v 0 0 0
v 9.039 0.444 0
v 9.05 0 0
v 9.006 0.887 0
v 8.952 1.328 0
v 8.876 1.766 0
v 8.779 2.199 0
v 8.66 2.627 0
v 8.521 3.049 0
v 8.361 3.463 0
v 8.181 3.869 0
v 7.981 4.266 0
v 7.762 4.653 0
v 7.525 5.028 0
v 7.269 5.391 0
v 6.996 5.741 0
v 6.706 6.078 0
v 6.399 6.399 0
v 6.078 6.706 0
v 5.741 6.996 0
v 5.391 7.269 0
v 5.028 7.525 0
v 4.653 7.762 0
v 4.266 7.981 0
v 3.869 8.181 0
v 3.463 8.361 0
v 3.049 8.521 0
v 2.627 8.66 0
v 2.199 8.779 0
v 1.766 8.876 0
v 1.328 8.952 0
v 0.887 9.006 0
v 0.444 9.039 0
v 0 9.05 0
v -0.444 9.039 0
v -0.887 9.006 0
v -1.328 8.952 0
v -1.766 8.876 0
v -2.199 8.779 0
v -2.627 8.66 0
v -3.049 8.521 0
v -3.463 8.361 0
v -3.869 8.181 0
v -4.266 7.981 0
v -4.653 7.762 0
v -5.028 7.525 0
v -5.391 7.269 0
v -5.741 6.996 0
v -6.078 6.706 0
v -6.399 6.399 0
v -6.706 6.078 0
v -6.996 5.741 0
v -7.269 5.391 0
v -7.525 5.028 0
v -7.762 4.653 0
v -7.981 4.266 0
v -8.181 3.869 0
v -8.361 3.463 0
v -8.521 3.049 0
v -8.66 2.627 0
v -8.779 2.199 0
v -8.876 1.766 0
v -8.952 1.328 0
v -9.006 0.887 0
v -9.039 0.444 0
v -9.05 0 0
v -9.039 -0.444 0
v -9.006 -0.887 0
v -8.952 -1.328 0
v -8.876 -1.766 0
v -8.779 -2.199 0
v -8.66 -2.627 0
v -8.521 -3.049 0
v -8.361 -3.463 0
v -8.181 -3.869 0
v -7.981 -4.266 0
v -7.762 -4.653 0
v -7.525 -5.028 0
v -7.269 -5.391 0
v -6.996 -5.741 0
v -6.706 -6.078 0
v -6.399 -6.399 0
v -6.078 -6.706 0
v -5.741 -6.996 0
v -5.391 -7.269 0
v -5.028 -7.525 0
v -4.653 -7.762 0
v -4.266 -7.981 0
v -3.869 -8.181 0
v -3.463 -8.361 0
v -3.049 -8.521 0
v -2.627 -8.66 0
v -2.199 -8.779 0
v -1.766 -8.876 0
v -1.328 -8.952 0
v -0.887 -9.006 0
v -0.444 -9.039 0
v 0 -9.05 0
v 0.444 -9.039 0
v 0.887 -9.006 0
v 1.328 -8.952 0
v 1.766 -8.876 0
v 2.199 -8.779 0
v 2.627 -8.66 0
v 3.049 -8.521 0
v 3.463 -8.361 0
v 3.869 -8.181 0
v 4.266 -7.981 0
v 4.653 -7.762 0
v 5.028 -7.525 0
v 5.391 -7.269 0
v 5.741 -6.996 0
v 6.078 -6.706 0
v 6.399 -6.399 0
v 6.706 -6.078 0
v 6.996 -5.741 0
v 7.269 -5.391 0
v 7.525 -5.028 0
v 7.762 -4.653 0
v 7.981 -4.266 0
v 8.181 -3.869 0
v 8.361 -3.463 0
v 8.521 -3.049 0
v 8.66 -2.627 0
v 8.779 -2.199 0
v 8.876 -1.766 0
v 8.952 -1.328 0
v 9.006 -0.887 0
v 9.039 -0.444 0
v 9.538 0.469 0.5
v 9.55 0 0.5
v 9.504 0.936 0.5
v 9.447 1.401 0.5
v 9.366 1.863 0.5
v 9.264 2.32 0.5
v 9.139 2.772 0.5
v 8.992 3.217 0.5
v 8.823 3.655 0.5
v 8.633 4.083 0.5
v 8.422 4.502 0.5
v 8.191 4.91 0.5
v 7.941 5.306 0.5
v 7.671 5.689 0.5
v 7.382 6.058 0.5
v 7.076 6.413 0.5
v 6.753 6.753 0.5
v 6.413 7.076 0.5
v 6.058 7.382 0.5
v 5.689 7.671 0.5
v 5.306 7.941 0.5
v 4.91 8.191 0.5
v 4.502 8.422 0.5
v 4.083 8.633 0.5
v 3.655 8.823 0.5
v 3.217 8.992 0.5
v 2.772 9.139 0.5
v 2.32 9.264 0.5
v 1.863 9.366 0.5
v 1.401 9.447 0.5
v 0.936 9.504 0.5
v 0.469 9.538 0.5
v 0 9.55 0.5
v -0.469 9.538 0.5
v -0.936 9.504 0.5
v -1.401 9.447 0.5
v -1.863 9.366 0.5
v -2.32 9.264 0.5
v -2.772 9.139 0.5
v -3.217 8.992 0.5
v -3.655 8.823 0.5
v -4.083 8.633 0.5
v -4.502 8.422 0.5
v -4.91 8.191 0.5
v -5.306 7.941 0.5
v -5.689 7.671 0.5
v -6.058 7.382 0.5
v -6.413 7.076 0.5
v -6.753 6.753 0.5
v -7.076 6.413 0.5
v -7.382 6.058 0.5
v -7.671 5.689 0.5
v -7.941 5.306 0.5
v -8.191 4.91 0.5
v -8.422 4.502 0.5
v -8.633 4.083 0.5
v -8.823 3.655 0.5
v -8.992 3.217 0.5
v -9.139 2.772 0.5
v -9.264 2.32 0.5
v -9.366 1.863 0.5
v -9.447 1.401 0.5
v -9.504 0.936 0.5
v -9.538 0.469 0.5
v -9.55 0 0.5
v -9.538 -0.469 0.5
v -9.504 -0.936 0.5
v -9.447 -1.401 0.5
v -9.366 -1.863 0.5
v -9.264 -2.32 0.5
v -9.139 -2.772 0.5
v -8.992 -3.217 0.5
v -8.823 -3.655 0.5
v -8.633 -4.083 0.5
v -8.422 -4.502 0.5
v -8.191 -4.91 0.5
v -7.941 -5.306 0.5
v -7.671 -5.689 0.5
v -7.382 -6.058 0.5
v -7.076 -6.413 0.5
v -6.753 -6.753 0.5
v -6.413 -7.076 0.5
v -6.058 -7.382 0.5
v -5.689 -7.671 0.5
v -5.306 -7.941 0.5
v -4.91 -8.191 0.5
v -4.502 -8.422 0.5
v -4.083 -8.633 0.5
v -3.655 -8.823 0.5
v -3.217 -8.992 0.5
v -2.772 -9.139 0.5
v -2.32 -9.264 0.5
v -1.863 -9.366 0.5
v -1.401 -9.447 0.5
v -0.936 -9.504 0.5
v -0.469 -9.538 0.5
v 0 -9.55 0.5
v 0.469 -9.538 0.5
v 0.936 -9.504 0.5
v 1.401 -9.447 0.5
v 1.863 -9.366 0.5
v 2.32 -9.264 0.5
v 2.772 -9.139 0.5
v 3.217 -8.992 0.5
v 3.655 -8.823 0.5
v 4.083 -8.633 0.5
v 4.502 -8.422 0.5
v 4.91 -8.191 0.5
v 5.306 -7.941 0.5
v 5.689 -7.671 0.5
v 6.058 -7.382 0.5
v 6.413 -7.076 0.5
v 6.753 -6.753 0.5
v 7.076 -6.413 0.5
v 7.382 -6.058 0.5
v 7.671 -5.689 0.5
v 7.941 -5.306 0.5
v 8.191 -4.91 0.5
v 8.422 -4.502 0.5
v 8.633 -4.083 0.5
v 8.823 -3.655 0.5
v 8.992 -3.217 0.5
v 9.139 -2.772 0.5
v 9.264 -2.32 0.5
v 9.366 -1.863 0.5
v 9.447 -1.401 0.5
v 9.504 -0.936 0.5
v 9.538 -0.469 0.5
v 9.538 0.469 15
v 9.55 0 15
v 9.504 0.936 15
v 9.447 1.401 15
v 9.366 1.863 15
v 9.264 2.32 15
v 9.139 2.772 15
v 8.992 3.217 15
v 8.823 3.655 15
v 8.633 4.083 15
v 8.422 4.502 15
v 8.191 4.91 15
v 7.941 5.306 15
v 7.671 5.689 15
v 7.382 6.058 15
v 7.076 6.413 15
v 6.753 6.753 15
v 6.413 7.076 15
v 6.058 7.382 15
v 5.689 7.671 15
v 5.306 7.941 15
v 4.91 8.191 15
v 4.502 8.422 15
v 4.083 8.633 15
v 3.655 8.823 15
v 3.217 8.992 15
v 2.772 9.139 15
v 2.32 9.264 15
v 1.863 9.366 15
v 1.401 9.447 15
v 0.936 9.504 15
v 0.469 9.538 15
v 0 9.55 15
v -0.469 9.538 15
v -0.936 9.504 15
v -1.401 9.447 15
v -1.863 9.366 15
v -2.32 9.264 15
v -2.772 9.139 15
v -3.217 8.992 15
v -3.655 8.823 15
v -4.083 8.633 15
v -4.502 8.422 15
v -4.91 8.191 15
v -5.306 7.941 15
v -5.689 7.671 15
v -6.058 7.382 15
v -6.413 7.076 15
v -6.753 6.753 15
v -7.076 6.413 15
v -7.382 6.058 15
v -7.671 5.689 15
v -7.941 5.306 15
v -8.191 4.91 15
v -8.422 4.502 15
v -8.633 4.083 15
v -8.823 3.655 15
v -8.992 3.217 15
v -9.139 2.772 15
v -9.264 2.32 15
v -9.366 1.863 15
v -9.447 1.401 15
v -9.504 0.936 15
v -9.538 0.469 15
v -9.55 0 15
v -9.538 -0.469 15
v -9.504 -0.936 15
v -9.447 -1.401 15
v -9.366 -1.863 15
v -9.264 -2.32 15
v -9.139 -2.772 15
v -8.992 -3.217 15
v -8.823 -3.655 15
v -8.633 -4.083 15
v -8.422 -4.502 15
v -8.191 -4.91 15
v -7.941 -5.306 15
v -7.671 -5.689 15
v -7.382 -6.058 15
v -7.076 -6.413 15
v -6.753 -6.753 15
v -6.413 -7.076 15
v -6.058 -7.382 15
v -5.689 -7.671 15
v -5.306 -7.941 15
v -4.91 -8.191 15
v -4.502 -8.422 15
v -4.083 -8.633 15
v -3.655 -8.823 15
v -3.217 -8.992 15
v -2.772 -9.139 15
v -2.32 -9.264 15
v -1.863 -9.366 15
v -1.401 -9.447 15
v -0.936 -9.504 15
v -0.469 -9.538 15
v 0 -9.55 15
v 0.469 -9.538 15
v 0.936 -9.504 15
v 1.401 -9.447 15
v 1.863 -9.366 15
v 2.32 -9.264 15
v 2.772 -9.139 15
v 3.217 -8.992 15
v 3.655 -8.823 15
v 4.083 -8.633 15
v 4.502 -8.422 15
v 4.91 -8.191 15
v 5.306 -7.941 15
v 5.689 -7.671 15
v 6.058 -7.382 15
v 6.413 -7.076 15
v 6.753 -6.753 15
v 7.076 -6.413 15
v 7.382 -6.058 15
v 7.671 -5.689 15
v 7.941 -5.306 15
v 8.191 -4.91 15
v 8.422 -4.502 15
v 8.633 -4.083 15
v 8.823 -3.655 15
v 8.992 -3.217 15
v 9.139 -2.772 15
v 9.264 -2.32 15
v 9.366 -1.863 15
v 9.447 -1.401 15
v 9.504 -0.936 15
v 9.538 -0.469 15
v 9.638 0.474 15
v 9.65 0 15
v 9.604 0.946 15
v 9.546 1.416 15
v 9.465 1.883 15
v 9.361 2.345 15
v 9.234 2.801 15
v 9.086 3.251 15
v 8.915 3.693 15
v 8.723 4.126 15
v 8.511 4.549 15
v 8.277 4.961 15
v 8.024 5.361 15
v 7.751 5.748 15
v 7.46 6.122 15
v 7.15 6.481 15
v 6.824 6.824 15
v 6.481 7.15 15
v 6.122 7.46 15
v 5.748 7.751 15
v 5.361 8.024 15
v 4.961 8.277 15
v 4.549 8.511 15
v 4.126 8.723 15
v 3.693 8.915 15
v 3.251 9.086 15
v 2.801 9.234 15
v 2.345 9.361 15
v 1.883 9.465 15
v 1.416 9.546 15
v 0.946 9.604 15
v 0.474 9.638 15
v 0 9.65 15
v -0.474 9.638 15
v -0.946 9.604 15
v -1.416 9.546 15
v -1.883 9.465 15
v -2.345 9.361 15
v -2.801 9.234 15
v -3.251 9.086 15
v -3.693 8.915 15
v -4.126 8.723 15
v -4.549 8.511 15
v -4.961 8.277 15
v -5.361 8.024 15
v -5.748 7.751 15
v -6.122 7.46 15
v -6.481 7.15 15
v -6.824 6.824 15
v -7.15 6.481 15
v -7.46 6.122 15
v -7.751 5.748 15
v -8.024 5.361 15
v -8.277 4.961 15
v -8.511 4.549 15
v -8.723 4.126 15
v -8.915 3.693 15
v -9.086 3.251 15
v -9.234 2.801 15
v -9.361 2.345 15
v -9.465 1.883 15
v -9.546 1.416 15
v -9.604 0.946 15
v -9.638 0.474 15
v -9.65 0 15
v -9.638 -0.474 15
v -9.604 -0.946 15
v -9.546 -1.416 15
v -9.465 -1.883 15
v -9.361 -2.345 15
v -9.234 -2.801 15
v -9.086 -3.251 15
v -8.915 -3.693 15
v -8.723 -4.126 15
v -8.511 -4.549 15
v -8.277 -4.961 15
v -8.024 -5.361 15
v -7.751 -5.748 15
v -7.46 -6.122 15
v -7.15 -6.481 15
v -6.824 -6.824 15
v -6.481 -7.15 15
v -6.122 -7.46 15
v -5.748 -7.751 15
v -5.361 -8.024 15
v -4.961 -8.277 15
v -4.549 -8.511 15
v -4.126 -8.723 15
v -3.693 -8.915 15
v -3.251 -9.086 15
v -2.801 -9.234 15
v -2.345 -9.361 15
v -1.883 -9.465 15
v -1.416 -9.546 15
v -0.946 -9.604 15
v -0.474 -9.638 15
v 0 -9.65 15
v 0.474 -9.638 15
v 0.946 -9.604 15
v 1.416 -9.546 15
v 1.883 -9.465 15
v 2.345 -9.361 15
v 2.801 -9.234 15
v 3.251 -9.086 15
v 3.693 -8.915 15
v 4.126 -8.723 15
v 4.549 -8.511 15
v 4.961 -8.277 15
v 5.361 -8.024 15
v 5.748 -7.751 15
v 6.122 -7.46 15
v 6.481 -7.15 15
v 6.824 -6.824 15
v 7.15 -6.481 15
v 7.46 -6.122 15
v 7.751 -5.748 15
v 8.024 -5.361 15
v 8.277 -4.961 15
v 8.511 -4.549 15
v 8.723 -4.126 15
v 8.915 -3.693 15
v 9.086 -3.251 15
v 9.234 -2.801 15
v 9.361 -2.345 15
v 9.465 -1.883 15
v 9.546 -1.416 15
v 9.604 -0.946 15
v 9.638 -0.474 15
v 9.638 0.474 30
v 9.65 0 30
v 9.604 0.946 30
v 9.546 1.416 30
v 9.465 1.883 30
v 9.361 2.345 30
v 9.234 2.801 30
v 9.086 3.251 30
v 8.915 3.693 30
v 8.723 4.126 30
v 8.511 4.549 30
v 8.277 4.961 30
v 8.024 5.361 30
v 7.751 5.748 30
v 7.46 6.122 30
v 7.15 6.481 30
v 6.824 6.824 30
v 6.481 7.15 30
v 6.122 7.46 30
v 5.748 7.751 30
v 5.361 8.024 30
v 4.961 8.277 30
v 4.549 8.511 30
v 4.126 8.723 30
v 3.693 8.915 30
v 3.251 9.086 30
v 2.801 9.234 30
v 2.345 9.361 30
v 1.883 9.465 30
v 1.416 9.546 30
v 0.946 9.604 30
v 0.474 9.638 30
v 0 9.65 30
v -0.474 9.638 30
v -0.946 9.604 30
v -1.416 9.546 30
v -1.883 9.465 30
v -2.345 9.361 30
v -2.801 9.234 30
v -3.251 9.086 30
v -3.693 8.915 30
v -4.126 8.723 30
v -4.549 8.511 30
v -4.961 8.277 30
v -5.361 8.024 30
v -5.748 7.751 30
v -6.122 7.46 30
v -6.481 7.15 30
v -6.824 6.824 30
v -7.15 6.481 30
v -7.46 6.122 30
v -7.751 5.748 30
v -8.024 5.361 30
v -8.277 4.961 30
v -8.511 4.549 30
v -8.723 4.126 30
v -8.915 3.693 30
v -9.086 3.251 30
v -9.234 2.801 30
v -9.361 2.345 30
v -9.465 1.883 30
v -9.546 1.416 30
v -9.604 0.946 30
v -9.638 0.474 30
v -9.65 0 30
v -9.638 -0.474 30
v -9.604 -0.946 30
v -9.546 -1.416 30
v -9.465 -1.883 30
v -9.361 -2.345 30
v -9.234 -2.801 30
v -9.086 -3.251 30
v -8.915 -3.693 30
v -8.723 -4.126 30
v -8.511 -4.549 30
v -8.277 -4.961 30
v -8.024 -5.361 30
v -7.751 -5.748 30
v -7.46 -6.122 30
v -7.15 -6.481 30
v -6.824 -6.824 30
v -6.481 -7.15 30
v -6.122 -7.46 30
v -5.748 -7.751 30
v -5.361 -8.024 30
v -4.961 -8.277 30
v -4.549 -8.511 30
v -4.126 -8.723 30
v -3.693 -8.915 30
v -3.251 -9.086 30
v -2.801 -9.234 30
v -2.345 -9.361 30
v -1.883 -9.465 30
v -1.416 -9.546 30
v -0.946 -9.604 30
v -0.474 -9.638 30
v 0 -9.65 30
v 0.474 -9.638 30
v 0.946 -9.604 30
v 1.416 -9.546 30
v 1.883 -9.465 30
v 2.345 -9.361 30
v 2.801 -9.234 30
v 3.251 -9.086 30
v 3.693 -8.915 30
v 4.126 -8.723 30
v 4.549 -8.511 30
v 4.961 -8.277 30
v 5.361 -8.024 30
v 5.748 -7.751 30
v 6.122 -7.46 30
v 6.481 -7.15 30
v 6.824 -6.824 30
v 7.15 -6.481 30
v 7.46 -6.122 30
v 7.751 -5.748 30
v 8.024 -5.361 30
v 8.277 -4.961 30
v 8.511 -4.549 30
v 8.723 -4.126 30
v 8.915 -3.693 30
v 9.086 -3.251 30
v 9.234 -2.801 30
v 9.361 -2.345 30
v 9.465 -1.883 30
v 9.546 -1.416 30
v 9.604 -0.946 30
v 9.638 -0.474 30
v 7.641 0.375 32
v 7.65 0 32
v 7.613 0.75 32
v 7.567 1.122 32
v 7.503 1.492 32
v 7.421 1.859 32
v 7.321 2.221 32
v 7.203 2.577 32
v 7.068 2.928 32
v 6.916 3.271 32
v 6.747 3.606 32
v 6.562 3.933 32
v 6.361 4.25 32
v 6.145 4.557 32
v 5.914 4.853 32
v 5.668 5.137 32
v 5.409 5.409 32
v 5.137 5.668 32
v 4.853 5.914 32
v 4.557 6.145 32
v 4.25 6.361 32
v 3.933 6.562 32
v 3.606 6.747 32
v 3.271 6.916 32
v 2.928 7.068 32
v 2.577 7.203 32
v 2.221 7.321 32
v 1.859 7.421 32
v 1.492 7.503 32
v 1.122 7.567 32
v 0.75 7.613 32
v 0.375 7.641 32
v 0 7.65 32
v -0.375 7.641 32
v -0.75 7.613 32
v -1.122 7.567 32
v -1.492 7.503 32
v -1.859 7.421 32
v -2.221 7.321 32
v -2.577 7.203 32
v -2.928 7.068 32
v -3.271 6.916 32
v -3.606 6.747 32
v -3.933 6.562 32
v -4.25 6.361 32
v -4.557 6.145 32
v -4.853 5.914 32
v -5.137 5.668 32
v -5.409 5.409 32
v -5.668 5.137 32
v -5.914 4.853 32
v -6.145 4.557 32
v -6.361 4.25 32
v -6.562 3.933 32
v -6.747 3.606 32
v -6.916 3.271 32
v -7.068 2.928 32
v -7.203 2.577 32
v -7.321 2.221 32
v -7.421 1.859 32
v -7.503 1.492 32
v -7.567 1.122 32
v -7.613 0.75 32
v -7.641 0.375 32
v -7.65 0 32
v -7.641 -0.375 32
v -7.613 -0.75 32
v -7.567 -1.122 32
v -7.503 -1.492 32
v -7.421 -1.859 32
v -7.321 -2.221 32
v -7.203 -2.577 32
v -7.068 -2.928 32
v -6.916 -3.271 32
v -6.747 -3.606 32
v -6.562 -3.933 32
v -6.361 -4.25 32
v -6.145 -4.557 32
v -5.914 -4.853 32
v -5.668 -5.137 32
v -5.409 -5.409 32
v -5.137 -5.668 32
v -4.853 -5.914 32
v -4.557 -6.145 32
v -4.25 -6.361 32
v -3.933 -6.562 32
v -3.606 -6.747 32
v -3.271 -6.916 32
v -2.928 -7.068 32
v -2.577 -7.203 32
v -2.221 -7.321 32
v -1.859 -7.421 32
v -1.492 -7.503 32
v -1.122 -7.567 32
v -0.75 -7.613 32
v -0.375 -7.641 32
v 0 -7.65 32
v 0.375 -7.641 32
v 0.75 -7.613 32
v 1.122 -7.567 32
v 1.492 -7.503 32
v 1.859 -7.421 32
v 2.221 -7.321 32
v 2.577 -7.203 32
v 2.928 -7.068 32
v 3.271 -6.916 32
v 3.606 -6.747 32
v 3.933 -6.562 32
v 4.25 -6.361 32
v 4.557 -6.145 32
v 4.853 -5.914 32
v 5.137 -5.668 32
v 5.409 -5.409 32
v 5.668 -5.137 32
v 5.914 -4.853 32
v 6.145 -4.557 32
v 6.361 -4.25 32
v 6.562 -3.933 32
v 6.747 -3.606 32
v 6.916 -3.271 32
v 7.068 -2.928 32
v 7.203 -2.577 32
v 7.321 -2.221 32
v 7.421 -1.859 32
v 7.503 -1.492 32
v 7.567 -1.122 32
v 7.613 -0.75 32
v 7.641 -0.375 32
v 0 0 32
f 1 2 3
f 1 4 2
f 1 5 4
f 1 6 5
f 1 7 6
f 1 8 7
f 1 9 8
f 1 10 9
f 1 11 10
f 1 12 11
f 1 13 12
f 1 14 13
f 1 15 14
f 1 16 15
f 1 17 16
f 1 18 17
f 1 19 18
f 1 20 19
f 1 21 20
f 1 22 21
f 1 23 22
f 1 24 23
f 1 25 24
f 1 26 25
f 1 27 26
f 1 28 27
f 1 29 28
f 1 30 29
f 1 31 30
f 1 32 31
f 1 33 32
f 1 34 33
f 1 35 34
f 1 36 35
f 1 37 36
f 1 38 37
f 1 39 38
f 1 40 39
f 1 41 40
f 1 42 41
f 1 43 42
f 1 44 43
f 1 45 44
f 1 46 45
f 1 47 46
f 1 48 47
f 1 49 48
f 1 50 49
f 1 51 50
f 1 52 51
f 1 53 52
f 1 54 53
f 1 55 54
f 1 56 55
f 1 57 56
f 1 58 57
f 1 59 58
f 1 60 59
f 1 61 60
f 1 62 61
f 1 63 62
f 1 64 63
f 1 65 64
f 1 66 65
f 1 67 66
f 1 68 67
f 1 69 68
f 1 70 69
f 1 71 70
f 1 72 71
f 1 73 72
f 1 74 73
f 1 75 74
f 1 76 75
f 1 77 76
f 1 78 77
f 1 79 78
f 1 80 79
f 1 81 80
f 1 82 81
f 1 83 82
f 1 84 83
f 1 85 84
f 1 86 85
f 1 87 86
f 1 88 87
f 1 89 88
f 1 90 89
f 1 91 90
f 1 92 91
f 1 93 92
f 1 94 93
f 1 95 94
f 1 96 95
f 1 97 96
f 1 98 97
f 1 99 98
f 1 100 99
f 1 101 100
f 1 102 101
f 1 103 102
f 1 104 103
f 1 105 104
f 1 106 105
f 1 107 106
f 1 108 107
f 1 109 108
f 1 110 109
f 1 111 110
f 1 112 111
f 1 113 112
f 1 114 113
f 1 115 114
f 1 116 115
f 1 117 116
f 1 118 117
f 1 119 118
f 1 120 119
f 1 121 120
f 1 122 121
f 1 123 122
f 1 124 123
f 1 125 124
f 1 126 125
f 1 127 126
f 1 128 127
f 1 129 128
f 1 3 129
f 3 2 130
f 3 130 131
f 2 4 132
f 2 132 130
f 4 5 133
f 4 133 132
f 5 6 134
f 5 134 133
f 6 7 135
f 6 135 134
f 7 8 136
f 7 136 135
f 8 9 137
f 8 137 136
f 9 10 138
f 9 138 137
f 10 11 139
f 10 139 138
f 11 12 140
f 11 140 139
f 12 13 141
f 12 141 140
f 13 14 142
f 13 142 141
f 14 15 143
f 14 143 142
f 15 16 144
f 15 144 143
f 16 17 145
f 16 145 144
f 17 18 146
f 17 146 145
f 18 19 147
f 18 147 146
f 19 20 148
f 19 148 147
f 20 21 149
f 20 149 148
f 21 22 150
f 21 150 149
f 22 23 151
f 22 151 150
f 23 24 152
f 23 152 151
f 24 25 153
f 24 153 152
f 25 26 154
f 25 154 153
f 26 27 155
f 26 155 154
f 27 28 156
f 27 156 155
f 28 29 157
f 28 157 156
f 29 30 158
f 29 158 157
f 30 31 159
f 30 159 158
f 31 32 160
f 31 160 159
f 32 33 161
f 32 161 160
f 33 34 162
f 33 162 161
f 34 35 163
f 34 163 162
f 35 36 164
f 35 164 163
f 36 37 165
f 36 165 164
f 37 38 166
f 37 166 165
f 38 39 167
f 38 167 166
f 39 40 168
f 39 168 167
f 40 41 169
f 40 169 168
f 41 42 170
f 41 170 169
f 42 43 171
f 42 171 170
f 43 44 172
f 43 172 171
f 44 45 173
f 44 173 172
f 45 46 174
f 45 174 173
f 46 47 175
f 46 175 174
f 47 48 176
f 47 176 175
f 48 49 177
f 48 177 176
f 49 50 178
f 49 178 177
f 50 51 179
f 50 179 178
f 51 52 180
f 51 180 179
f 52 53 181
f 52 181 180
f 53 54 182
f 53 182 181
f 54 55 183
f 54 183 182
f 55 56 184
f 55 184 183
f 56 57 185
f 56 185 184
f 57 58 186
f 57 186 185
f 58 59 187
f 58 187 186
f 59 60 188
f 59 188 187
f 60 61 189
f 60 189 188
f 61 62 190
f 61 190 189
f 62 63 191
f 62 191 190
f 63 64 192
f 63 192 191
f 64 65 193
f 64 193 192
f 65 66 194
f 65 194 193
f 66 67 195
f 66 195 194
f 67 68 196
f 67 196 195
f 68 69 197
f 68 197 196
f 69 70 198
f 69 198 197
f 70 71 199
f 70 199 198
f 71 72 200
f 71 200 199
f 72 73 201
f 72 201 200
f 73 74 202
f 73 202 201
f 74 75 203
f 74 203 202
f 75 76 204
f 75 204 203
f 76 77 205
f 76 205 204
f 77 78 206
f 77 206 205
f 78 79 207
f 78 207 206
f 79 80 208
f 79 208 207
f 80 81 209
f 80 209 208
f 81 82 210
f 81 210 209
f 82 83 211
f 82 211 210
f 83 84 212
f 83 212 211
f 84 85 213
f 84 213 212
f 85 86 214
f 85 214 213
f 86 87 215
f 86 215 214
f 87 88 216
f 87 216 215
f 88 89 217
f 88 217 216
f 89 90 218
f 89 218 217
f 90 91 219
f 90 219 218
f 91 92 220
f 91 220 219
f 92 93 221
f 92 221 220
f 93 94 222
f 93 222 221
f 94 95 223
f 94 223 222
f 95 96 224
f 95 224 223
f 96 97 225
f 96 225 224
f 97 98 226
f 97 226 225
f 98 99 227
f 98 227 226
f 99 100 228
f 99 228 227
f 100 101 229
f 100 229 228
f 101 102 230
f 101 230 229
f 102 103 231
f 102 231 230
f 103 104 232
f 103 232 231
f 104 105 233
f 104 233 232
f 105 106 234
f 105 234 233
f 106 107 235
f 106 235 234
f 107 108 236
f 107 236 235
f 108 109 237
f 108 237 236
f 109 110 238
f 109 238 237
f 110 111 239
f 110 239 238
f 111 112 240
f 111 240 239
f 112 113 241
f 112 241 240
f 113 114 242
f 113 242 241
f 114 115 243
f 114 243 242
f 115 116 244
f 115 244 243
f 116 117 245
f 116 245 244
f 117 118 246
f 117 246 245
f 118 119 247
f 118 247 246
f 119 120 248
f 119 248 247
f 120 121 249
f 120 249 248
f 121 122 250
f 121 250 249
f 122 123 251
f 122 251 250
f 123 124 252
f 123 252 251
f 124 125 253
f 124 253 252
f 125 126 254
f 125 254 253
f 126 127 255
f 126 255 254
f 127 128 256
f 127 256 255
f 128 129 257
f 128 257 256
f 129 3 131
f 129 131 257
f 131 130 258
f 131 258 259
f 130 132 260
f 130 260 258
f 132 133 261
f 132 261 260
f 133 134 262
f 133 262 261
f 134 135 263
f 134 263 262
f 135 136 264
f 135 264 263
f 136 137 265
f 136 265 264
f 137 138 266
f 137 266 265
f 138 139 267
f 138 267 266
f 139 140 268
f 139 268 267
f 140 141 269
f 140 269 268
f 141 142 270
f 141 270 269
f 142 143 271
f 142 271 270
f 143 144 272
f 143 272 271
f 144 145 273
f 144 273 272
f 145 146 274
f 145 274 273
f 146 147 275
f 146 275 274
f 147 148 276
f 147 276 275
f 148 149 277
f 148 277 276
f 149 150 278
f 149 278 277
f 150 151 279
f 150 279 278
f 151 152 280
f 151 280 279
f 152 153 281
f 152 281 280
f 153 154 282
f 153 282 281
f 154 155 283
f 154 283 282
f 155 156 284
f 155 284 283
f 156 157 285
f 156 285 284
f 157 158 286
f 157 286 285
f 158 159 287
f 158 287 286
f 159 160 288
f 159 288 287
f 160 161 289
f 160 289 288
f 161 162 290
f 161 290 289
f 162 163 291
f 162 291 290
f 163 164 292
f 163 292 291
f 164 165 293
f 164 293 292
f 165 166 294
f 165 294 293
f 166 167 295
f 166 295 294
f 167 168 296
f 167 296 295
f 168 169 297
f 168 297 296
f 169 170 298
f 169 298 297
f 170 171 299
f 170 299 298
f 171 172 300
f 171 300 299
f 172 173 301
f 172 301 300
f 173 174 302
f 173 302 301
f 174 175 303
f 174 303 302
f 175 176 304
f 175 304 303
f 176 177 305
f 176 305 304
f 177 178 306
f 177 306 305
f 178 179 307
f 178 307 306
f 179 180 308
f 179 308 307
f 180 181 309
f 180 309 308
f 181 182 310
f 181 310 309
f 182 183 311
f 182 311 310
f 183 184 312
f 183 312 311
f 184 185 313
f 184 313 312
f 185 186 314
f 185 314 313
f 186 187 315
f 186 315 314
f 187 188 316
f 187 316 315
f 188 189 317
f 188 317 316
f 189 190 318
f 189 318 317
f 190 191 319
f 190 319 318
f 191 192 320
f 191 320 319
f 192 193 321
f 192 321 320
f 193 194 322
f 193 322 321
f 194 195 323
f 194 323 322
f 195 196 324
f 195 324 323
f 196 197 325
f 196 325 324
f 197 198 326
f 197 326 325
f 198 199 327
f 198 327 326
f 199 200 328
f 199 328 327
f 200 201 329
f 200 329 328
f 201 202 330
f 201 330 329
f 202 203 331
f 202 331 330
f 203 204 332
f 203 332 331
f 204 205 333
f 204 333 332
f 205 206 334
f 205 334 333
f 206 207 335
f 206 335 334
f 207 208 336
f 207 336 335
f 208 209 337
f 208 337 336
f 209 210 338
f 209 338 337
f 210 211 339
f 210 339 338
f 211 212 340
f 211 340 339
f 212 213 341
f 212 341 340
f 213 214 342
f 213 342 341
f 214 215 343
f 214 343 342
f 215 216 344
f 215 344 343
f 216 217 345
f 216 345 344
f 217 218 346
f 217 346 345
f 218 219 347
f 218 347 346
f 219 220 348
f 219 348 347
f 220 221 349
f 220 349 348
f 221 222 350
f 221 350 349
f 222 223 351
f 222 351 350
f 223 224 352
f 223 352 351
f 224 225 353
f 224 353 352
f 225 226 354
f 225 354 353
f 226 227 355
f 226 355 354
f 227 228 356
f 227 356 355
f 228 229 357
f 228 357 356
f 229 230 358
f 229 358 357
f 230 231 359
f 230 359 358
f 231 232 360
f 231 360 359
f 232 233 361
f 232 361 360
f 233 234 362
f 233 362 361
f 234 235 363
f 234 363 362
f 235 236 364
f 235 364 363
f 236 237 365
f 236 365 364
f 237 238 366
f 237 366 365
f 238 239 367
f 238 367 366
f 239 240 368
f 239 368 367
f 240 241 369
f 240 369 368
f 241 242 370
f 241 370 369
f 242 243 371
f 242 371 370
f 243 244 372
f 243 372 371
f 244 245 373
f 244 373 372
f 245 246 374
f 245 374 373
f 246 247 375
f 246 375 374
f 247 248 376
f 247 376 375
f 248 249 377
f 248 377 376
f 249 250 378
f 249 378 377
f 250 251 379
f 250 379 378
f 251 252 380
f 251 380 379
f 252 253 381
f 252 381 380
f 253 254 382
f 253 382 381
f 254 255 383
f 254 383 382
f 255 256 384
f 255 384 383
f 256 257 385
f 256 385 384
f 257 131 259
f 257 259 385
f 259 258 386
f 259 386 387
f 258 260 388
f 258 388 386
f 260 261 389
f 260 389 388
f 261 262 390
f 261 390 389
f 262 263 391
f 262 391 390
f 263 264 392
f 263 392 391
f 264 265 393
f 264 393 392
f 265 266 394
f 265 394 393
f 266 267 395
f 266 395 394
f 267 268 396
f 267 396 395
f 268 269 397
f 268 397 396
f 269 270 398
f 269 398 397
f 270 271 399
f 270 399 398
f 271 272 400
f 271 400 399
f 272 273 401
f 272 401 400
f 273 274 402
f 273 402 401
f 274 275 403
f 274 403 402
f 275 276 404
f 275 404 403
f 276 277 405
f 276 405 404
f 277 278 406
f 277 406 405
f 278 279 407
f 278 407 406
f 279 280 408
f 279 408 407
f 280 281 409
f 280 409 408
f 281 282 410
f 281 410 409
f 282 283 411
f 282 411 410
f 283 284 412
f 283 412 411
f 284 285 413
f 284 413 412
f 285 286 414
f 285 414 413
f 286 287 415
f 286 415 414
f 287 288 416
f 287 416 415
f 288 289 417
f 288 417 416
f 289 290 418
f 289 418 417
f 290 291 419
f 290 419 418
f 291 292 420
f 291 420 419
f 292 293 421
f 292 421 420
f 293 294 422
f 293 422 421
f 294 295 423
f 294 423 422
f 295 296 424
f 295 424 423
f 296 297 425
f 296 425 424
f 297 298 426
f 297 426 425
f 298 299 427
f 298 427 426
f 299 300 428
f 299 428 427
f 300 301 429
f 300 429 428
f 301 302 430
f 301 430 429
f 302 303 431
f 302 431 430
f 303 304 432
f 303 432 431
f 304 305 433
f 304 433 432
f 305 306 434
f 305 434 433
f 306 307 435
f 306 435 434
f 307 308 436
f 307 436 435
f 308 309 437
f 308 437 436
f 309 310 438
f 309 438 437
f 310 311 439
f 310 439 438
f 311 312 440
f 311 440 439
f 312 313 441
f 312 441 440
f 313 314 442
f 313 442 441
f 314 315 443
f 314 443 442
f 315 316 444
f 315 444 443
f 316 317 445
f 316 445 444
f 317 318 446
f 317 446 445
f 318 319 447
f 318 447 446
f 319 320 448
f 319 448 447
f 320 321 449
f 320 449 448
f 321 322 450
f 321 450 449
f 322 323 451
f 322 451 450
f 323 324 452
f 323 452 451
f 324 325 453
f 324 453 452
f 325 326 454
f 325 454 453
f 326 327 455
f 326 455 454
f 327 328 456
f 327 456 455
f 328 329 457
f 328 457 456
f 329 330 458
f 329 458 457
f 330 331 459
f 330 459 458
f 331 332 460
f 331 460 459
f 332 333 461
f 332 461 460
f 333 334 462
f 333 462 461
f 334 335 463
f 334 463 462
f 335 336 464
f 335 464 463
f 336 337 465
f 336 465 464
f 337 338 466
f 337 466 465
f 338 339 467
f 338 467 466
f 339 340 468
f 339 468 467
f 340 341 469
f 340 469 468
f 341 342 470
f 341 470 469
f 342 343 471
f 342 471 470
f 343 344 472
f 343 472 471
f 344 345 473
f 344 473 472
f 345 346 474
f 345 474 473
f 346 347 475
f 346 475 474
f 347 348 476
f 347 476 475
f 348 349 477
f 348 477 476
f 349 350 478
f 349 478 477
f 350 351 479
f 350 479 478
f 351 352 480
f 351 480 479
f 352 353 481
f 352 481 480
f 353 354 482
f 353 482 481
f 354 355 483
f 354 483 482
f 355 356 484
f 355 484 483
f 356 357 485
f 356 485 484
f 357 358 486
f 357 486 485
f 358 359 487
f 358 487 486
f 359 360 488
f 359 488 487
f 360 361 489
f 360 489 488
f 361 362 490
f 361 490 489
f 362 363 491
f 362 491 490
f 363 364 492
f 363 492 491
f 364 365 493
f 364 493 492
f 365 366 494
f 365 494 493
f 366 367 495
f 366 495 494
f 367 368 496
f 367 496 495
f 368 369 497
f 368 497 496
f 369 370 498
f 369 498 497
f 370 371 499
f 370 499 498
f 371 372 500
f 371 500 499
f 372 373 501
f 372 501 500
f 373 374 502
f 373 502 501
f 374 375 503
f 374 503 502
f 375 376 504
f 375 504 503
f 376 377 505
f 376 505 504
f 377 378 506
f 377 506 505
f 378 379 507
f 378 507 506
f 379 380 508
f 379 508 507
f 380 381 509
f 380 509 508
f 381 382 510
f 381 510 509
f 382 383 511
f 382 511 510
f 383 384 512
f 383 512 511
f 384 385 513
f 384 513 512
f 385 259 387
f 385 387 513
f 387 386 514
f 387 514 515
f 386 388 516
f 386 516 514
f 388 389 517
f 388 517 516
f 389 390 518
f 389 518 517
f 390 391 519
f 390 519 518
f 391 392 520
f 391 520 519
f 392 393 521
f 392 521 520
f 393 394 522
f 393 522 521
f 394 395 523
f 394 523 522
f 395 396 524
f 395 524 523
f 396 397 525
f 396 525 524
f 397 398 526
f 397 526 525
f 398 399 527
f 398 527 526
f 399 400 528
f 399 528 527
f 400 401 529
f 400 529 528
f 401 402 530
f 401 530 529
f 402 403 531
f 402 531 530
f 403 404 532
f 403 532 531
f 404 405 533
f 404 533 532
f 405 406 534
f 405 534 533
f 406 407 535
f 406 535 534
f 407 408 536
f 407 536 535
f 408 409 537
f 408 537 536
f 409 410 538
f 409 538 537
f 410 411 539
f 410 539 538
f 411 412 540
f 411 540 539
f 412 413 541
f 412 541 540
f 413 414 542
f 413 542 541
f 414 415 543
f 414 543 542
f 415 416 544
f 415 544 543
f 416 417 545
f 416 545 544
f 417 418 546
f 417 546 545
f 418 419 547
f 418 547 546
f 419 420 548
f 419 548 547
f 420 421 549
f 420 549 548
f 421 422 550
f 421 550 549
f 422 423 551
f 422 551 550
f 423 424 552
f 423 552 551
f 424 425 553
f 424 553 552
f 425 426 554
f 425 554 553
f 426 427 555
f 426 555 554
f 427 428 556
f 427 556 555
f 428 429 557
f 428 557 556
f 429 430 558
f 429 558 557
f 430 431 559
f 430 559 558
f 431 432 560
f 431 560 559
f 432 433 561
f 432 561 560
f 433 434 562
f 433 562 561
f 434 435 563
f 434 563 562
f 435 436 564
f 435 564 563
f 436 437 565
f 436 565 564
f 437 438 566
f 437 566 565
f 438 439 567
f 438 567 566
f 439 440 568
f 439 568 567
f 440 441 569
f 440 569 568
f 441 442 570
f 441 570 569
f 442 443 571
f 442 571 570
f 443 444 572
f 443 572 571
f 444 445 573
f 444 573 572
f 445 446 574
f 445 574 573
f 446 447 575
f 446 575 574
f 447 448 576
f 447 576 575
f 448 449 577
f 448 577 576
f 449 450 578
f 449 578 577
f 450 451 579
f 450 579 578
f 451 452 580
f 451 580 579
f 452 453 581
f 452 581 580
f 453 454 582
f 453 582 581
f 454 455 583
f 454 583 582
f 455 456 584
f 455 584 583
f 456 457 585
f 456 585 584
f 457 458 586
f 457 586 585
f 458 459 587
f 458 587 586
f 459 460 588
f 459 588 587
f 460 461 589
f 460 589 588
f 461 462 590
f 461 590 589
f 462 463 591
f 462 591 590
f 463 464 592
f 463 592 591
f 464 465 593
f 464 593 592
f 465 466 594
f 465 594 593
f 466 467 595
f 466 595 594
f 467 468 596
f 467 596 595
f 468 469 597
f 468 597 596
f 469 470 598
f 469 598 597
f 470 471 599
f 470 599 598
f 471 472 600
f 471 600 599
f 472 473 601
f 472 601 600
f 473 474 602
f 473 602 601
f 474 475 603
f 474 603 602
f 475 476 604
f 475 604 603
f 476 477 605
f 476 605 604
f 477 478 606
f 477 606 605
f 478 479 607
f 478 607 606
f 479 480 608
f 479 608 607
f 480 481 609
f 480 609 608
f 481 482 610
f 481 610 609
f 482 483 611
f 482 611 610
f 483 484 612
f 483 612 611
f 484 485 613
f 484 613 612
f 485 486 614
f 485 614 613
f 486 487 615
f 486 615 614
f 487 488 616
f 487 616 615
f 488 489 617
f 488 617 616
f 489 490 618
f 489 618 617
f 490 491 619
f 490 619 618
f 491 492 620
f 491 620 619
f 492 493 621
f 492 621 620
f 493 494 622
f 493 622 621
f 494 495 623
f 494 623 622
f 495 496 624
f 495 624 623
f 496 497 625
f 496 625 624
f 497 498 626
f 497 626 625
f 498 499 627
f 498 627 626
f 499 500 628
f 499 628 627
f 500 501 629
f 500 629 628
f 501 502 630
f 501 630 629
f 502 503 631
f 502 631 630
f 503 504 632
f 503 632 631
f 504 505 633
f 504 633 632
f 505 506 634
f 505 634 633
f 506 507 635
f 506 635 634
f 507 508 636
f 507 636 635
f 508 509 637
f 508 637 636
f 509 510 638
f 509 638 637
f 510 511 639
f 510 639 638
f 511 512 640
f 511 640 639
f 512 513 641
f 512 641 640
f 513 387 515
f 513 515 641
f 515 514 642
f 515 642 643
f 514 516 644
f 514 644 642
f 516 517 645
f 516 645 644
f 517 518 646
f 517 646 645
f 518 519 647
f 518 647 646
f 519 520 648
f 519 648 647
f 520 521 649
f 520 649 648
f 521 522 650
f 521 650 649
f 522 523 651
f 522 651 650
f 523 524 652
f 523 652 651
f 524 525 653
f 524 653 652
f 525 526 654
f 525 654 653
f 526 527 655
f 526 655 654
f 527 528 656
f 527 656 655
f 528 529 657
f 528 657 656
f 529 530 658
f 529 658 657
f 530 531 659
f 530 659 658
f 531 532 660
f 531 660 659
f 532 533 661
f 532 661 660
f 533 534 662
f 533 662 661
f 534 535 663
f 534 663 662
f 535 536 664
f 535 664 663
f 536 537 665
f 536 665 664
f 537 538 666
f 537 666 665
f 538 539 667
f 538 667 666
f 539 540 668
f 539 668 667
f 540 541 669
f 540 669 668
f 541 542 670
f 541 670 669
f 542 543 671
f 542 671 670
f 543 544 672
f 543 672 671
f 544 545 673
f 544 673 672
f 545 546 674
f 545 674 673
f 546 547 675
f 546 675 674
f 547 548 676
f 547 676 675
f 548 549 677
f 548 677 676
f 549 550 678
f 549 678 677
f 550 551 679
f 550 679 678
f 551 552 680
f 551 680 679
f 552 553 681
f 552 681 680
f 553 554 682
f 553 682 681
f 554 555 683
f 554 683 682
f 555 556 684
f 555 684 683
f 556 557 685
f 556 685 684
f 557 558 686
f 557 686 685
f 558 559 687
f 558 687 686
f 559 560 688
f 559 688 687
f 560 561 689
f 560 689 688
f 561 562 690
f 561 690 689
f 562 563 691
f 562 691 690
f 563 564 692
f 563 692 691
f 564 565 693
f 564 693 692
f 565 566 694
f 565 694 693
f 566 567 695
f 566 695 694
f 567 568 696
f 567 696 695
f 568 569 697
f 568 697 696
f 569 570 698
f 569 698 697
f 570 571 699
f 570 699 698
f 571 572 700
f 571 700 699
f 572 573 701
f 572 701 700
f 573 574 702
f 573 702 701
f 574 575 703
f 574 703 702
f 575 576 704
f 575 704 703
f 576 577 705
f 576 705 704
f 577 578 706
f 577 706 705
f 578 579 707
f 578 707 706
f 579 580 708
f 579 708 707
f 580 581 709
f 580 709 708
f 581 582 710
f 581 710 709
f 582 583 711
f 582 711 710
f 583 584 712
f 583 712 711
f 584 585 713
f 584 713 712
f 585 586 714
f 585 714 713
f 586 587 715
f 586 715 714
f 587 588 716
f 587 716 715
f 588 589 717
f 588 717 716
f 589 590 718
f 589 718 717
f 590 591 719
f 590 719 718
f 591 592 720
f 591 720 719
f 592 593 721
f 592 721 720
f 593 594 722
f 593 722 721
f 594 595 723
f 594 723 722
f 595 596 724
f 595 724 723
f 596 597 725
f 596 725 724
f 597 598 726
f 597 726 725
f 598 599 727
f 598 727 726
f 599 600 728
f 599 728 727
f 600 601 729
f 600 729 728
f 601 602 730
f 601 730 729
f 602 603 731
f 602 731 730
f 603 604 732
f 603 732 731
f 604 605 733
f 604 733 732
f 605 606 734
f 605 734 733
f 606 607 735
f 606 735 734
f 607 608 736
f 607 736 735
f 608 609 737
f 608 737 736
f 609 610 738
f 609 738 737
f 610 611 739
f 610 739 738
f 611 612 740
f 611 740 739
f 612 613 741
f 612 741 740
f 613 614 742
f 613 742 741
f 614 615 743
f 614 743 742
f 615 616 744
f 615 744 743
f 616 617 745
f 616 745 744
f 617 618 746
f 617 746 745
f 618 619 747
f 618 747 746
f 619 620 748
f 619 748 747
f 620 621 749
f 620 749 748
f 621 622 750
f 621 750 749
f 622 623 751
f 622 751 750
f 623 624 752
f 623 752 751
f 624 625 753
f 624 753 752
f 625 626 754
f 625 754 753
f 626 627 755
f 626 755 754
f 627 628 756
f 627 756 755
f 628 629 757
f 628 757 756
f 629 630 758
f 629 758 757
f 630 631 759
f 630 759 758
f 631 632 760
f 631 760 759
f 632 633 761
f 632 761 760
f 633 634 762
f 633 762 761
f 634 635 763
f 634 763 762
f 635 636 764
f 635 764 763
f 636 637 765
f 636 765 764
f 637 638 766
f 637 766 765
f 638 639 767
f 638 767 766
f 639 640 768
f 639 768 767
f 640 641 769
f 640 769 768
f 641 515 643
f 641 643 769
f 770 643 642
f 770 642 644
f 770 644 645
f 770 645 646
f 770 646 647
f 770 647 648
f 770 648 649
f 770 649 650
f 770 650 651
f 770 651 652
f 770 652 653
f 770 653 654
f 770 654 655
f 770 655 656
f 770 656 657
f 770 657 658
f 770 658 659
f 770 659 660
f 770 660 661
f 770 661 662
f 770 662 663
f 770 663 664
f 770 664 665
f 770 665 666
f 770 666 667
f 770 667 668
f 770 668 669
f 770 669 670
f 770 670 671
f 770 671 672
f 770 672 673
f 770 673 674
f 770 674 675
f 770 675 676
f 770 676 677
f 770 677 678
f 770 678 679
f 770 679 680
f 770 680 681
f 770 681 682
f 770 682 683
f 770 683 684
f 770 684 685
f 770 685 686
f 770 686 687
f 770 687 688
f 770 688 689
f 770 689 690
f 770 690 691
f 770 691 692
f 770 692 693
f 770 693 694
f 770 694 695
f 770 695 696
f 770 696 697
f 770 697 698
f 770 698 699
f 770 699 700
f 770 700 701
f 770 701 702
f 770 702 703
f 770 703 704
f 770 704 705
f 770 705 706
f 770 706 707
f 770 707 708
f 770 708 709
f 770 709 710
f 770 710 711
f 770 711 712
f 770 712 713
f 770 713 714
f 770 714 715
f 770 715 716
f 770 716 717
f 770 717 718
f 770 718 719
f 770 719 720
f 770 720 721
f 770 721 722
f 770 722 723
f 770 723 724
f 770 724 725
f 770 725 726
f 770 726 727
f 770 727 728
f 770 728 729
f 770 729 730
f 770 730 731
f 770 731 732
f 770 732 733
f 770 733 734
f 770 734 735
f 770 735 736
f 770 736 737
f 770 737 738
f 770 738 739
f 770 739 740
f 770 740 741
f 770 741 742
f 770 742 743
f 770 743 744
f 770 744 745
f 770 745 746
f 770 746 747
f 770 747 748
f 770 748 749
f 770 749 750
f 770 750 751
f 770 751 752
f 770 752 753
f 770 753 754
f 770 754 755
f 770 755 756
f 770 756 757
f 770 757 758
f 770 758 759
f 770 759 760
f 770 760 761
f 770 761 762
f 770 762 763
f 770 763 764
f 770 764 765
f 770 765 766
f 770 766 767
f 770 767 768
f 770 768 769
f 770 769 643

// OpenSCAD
// flip_dog — 3D-printed ¾″ registration dog for the QCW dog grid
//
// Used in pairs for the crate1/crate2 full-sheet flip route: the short
// run bores two ∅19.35 holes in the panel over bed dog holes; the
// panel flips left-right onto two of these dogs in the mirror column.
//
// Two-step design (better than a plain dowel):
//   - bed section  Ø19.1 × 15  — snug push fit in the ∅19.05 × 15 bed hole
//   - panel section Ø19.3 × 17 — 0.05 total clearance in the ∅19.35
//     panel bore (vs 0.3 for a dowel) → tighter flip registration
//   - total 32 tall → 17 stick-up = 4 proud of a 13 panel, clears the
//     Z+6 rapid plane by 2. NEVER print taller than 33 (18 stick-up max).
//
// Print: vertical as modeled, PLA or PETG, 5+ perimeters, any infill,
// 0.2 layers. Printers vary ±0.1 on cylinder diameter — print
// flip_dog_test.stl (8 mm puck) first, test in a bed hole, and trim
// bed_d / panel_d by 0.05 steps until snug (bed) / easy drop (panel).

bed_d    = 19.1;   // bed-hole section diameter (hole is 19.05; +0.1 fit comp)
panel_d  = 19.3;   // panel-hole section diameter (bore is 19.35; +0.1 comp)
bed_h    = 15.0;   // bed hole depth
panel_h  = 17.0;   // stick-up above the slat
ch_top   = 2.0;    // top lead-in chamfer
ch_bot   = 0.5;    // elephant-foot relief
$fn      = 128;

module dog() {
    rotate_extrude() polygon([
        [0, 0],
        [bed_d/2 - ch_bot, 0],
        [bed_d/2, ch_bot],
        [bed_d/2, bed_h],
        [panel_d/2, bed_h],
        [panel_d/2, bed_h + panel_h - ch_top],
        [panel_d/2 - ch_top, bed_h + panel_h],
        [0, bed_h + panel_h],
    ]);
}

dog();
